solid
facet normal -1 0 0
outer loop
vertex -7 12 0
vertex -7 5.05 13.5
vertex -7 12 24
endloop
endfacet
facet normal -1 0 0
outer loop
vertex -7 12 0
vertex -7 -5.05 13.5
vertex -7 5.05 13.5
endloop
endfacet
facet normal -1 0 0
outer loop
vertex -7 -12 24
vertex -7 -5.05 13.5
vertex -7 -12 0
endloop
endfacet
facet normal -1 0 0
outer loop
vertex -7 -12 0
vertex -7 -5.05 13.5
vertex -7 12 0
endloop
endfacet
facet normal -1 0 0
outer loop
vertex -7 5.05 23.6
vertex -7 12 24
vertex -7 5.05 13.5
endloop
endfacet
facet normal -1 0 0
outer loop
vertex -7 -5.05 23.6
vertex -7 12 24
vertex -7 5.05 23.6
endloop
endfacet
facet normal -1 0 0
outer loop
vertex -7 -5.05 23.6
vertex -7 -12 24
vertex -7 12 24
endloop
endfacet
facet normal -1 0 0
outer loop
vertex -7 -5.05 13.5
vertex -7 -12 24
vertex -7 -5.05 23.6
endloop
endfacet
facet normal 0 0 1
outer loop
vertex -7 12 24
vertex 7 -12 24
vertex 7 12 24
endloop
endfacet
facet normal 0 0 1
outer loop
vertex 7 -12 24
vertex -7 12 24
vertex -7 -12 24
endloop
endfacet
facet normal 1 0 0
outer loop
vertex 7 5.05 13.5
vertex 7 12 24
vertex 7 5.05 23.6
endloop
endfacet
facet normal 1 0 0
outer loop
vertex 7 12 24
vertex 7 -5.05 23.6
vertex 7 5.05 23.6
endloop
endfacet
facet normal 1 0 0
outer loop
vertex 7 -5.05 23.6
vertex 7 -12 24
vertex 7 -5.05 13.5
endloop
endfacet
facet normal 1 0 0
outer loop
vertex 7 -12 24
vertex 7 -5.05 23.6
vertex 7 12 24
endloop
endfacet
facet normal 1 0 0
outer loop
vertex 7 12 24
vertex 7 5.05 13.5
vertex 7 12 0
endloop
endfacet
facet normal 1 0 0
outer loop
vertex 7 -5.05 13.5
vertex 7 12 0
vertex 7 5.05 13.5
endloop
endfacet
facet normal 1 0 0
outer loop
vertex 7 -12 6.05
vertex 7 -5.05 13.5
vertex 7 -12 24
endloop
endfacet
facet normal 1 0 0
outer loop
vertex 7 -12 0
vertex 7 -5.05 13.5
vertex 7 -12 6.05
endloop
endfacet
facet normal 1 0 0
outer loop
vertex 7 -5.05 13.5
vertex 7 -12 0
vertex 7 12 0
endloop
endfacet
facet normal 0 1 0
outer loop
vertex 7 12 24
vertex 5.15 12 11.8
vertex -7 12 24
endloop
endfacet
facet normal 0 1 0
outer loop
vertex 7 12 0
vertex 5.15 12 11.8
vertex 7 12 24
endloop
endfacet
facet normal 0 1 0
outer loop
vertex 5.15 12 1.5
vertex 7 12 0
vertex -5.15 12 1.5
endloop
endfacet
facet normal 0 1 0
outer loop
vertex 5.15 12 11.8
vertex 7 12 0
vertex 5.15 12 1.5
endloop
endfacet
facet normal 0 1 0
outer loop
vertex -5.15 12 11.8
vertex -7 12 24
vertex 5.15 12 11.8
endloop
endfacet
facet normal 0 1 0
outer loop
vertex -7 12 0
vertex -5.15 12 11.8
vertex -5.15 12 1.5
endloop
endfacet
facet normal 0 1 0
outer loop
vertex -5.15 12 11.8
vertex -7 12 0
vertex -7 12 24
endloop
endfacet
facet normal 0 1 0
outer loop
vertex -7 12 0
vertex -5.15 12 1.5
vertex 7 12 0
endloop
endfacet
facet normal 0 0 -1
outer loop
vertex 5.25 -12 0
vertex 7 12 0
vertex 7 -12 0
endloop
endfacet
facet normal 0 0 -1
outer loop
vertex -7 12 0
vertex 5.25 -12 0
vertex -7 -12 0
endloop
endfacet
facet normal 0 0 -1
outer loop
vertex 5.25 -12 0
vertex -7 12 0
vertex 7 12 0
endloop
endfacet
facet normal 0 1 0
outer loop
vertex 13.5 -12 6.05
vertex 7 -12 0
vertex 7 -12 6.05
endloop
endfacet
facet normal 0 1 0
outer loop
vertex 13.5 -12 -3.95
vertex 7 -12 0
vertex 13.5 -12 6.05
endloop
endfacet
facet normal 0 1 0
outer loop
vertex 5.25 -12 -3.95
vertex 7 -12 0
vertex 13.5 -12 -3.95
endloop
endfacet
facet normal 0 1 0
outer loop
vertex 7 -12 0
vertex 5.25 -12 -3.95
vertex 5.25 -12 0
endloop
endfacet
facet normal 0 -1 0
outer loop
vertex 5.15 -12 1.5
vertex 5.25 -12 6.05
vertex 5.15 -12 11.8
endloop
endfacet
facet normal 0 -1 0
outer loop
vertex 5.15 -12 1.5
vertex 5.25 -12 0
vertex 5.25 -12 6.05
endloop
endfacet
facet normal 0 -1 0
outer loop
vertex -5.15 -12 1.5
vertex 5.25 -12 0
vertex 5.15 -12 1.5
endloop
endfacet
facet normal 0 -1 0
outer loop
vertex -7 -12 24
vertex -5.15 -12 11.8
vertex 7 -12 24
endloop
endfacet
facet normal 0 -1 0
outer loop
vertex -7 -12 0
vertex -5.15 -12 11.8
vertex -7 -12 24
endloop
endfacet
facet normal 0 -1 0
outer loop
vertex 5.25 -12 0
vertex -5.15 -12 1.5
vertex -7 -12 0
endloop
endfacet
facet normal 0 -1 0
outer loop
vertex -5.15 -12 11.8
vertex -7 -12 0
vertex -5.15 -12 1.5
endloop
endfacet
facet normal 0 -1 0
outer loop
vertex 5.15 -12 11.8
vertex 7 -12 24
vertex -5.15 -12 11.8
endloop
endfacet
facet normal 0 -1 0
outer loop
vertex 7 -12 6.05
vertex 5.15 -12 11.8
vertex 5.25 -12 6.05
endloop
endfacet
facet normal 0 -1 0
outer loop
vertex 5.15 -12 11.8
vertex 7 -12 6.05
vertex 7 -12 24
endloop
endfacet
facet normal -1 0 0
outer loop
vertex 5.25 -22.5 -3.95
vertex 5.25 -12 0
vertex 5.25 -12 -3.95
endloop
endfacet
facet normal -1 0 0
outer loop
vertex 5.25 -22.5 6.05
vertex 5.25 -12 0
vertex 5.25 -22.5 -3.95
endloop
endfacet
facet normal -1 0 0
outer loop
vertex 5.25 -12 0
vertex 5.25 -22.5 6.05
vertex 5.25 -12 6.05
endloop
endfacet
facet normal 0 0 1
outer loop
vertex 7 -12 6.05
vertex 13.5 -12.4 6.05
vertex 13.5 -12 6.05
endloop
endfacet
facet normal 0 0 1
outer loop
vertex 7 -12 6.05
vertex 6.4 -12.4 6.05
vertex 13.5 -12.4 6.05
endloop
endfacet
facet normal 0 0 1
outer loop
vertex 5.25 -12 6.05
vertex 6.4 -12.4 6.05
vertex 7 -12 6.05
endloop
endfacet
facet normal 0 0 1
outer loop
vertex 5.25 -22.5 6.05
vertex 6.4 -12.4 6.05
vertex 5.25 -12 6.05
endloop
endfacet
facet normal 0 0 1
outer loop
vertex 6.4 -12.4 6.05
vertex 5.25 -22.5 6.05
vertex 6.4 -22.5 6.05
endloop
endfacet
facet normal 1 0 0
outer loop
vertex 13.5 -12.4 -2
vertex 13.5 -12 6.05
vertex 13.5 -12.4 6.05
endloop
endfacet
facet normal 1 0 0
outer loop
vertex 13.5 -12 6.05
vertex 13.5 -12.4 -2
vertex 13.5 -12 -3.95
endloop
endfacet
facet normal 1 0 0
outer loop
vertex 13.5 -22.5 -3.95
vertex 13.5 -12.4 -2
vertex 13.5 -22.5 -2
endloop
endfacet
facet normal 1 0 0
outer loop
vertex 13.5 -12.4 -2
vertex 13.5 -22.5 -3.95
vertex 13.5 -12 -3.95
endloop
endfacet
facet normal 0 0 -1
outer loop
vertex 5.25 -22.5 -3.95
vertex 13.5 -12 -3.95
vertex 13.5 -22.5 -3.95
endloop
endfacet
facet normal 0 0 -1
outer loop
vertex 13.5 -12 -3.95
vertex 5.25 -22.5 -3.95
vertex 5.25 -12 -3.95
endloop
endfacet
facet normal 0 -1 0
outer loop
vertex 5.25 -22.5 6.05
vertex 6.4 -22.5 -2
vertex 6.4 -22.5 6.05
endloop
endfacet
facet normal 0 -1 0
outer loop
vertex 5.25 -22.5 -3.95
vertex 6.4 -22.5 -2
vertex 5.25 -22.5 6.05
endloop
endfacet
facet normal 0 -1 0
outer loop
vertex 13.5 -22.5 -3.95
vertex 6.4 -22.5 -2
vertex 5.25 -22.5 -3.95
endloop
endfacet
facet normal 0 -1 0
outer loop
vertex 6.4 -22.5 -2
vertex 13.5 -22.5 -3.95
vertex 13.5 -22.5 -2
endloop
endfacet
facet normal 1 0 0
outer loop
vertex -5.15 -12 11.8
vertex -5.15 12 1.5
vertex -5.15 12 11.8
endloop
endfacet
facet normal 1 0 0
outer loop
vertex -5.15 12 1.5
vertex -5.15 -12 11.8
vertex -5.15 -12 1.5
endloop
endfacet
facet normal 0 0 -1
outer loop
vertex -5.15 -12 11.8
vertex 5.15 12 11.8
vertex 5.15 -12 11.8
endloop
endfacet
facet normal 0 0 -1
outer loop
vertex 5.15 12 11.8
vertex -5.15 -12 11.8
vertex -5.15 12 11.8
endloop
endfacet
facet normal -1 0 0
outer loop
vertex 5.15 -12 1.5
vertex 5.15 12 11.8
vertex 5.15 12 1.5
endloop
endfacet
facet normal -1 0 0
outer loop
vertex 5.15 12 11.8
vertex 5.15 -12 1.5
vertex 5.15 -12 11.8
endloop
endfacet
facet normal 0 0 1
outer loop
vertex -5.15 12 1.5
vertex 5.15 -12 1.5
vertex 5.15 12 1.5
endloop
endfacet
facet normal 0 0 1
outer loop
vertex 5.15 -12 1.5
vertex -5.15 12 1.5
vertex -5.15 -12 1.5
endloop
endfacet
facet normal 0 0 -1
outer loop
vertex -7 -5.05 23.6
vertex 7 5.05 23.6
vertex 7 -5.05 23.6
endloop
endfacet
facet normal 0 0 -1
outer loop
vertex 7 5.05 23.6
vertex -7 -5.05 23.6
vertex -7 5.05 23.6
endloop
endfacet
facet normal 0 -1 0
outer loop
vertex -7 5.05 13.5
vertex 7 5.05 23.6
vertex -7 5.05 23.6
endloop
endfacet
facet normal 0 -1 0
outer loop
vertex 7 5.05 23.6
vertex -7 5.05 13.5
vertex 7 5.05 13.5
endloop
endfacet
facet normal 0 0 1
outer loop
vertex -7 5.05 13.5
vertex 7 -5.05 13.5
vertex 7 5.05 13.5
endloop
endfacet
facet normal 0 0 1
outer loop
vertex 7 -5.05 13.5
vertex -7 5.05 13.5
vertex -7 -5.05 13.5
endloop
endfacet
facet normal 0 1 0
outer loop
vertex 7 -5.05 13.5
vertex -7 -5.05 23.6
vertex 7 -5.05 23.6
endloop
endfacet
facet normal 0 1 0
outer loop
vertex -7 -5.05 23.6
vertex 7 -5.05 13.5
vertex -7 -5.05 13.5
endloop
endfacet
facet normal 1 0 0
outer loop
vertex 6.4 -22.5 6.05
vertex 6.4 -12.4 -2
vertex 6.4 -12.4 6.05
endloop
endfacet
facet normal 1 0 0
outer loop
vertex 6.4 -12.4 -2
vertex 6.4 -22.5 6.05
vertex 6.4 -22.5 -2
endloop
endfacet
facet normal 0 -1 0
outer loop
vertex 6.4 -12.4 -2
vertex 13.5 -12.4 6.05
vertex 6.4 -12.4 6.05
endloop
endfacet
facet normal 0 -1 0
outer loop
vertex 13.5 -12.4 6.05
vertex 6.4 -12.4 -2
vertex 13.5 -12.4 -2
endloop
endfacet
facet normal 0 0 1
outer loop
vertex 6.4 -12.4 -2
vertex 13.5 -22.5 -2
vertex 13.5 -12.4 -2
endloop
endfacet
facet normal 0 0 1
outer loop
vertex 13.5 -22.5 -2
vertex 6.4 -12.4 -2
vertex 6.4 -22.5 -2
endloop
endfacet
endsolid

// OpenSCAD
/* ==========================================================================
   PROJETO CAMPO TÁTIL - CARRINHO LATERAL Y (METADE ESQUERDA DE IMPRESSÃO)
   Berço da cremalheira em U totalmente aberto para cima e para a direita (centro do campo)
   Pronto para fatiar direto na Bambu Lab A1 Mini (Suporte Zero)
   ========================================================================== */

$fn = 60;

module carrinho_lateral_y_esquerdo() {
    desloc_x_centro_braco = 9.375;
    
    difference() {
        union() {
            // Corpo principal original de 24mm em Y (spans Y = -12 a 12mm)
            translate([0, 0, 12]) 
                cube([14, 24, 24], center=true);
            
            // Prolongador interno com altura estendida para baixo em Z (total 10.0mm de altura)
            // Z de -3.95mm a 6.05mm relativo. Centralizado em Y = -17.25mm
            translate([desloc_x_centro_braco, -17.25, 1.05])
                cube([8.25, 10.5, 10.0], center=true);
                
            // Nervura triangular de reforço em X-Y (Mão-Francesa lateral estendida em Z)
            translate([0, 0, 1.05]) {
                linear_extrude(height = 10.0, center = true) {
                    polygon(points = [
                        [7.0, -12.0],
                        [7.0, -17.5],
                        [13.5, -17.5]
                    ]);
                }
            }
        }
        
        // Canal passante interno para o eixo quadrado Y (10.3mm - Spans X = -5.15 a 5.15)
        translate([0, 0, 1.5 + 10.3/2]) 
            cube([10.3, 26, 10.3], center=true);
            
        // Eixo Único da Ponte X (Y = 0mm)
        translate([0, 0, 13.5 + 10.1/2]) 
            cube([16, 10.1, 10.1], center=true);
        
        // Canal de Encaixe em U Aberto por Cima E Aberto para a Direita (Centro do Campo)
        // Corta tudo a partir de X = 6.4mm em direção ao lado direito (+X)
        // Corta de Z = -2.0mm até acima do topo do suporte
        translate([10.7, -17.5, 3.0])
            cube([8.6, 10.2, 10.0], center=true);
    }
}

// Renderiza a peça pronta para fatiar
carrinho_lateral_y_esquerdo();
